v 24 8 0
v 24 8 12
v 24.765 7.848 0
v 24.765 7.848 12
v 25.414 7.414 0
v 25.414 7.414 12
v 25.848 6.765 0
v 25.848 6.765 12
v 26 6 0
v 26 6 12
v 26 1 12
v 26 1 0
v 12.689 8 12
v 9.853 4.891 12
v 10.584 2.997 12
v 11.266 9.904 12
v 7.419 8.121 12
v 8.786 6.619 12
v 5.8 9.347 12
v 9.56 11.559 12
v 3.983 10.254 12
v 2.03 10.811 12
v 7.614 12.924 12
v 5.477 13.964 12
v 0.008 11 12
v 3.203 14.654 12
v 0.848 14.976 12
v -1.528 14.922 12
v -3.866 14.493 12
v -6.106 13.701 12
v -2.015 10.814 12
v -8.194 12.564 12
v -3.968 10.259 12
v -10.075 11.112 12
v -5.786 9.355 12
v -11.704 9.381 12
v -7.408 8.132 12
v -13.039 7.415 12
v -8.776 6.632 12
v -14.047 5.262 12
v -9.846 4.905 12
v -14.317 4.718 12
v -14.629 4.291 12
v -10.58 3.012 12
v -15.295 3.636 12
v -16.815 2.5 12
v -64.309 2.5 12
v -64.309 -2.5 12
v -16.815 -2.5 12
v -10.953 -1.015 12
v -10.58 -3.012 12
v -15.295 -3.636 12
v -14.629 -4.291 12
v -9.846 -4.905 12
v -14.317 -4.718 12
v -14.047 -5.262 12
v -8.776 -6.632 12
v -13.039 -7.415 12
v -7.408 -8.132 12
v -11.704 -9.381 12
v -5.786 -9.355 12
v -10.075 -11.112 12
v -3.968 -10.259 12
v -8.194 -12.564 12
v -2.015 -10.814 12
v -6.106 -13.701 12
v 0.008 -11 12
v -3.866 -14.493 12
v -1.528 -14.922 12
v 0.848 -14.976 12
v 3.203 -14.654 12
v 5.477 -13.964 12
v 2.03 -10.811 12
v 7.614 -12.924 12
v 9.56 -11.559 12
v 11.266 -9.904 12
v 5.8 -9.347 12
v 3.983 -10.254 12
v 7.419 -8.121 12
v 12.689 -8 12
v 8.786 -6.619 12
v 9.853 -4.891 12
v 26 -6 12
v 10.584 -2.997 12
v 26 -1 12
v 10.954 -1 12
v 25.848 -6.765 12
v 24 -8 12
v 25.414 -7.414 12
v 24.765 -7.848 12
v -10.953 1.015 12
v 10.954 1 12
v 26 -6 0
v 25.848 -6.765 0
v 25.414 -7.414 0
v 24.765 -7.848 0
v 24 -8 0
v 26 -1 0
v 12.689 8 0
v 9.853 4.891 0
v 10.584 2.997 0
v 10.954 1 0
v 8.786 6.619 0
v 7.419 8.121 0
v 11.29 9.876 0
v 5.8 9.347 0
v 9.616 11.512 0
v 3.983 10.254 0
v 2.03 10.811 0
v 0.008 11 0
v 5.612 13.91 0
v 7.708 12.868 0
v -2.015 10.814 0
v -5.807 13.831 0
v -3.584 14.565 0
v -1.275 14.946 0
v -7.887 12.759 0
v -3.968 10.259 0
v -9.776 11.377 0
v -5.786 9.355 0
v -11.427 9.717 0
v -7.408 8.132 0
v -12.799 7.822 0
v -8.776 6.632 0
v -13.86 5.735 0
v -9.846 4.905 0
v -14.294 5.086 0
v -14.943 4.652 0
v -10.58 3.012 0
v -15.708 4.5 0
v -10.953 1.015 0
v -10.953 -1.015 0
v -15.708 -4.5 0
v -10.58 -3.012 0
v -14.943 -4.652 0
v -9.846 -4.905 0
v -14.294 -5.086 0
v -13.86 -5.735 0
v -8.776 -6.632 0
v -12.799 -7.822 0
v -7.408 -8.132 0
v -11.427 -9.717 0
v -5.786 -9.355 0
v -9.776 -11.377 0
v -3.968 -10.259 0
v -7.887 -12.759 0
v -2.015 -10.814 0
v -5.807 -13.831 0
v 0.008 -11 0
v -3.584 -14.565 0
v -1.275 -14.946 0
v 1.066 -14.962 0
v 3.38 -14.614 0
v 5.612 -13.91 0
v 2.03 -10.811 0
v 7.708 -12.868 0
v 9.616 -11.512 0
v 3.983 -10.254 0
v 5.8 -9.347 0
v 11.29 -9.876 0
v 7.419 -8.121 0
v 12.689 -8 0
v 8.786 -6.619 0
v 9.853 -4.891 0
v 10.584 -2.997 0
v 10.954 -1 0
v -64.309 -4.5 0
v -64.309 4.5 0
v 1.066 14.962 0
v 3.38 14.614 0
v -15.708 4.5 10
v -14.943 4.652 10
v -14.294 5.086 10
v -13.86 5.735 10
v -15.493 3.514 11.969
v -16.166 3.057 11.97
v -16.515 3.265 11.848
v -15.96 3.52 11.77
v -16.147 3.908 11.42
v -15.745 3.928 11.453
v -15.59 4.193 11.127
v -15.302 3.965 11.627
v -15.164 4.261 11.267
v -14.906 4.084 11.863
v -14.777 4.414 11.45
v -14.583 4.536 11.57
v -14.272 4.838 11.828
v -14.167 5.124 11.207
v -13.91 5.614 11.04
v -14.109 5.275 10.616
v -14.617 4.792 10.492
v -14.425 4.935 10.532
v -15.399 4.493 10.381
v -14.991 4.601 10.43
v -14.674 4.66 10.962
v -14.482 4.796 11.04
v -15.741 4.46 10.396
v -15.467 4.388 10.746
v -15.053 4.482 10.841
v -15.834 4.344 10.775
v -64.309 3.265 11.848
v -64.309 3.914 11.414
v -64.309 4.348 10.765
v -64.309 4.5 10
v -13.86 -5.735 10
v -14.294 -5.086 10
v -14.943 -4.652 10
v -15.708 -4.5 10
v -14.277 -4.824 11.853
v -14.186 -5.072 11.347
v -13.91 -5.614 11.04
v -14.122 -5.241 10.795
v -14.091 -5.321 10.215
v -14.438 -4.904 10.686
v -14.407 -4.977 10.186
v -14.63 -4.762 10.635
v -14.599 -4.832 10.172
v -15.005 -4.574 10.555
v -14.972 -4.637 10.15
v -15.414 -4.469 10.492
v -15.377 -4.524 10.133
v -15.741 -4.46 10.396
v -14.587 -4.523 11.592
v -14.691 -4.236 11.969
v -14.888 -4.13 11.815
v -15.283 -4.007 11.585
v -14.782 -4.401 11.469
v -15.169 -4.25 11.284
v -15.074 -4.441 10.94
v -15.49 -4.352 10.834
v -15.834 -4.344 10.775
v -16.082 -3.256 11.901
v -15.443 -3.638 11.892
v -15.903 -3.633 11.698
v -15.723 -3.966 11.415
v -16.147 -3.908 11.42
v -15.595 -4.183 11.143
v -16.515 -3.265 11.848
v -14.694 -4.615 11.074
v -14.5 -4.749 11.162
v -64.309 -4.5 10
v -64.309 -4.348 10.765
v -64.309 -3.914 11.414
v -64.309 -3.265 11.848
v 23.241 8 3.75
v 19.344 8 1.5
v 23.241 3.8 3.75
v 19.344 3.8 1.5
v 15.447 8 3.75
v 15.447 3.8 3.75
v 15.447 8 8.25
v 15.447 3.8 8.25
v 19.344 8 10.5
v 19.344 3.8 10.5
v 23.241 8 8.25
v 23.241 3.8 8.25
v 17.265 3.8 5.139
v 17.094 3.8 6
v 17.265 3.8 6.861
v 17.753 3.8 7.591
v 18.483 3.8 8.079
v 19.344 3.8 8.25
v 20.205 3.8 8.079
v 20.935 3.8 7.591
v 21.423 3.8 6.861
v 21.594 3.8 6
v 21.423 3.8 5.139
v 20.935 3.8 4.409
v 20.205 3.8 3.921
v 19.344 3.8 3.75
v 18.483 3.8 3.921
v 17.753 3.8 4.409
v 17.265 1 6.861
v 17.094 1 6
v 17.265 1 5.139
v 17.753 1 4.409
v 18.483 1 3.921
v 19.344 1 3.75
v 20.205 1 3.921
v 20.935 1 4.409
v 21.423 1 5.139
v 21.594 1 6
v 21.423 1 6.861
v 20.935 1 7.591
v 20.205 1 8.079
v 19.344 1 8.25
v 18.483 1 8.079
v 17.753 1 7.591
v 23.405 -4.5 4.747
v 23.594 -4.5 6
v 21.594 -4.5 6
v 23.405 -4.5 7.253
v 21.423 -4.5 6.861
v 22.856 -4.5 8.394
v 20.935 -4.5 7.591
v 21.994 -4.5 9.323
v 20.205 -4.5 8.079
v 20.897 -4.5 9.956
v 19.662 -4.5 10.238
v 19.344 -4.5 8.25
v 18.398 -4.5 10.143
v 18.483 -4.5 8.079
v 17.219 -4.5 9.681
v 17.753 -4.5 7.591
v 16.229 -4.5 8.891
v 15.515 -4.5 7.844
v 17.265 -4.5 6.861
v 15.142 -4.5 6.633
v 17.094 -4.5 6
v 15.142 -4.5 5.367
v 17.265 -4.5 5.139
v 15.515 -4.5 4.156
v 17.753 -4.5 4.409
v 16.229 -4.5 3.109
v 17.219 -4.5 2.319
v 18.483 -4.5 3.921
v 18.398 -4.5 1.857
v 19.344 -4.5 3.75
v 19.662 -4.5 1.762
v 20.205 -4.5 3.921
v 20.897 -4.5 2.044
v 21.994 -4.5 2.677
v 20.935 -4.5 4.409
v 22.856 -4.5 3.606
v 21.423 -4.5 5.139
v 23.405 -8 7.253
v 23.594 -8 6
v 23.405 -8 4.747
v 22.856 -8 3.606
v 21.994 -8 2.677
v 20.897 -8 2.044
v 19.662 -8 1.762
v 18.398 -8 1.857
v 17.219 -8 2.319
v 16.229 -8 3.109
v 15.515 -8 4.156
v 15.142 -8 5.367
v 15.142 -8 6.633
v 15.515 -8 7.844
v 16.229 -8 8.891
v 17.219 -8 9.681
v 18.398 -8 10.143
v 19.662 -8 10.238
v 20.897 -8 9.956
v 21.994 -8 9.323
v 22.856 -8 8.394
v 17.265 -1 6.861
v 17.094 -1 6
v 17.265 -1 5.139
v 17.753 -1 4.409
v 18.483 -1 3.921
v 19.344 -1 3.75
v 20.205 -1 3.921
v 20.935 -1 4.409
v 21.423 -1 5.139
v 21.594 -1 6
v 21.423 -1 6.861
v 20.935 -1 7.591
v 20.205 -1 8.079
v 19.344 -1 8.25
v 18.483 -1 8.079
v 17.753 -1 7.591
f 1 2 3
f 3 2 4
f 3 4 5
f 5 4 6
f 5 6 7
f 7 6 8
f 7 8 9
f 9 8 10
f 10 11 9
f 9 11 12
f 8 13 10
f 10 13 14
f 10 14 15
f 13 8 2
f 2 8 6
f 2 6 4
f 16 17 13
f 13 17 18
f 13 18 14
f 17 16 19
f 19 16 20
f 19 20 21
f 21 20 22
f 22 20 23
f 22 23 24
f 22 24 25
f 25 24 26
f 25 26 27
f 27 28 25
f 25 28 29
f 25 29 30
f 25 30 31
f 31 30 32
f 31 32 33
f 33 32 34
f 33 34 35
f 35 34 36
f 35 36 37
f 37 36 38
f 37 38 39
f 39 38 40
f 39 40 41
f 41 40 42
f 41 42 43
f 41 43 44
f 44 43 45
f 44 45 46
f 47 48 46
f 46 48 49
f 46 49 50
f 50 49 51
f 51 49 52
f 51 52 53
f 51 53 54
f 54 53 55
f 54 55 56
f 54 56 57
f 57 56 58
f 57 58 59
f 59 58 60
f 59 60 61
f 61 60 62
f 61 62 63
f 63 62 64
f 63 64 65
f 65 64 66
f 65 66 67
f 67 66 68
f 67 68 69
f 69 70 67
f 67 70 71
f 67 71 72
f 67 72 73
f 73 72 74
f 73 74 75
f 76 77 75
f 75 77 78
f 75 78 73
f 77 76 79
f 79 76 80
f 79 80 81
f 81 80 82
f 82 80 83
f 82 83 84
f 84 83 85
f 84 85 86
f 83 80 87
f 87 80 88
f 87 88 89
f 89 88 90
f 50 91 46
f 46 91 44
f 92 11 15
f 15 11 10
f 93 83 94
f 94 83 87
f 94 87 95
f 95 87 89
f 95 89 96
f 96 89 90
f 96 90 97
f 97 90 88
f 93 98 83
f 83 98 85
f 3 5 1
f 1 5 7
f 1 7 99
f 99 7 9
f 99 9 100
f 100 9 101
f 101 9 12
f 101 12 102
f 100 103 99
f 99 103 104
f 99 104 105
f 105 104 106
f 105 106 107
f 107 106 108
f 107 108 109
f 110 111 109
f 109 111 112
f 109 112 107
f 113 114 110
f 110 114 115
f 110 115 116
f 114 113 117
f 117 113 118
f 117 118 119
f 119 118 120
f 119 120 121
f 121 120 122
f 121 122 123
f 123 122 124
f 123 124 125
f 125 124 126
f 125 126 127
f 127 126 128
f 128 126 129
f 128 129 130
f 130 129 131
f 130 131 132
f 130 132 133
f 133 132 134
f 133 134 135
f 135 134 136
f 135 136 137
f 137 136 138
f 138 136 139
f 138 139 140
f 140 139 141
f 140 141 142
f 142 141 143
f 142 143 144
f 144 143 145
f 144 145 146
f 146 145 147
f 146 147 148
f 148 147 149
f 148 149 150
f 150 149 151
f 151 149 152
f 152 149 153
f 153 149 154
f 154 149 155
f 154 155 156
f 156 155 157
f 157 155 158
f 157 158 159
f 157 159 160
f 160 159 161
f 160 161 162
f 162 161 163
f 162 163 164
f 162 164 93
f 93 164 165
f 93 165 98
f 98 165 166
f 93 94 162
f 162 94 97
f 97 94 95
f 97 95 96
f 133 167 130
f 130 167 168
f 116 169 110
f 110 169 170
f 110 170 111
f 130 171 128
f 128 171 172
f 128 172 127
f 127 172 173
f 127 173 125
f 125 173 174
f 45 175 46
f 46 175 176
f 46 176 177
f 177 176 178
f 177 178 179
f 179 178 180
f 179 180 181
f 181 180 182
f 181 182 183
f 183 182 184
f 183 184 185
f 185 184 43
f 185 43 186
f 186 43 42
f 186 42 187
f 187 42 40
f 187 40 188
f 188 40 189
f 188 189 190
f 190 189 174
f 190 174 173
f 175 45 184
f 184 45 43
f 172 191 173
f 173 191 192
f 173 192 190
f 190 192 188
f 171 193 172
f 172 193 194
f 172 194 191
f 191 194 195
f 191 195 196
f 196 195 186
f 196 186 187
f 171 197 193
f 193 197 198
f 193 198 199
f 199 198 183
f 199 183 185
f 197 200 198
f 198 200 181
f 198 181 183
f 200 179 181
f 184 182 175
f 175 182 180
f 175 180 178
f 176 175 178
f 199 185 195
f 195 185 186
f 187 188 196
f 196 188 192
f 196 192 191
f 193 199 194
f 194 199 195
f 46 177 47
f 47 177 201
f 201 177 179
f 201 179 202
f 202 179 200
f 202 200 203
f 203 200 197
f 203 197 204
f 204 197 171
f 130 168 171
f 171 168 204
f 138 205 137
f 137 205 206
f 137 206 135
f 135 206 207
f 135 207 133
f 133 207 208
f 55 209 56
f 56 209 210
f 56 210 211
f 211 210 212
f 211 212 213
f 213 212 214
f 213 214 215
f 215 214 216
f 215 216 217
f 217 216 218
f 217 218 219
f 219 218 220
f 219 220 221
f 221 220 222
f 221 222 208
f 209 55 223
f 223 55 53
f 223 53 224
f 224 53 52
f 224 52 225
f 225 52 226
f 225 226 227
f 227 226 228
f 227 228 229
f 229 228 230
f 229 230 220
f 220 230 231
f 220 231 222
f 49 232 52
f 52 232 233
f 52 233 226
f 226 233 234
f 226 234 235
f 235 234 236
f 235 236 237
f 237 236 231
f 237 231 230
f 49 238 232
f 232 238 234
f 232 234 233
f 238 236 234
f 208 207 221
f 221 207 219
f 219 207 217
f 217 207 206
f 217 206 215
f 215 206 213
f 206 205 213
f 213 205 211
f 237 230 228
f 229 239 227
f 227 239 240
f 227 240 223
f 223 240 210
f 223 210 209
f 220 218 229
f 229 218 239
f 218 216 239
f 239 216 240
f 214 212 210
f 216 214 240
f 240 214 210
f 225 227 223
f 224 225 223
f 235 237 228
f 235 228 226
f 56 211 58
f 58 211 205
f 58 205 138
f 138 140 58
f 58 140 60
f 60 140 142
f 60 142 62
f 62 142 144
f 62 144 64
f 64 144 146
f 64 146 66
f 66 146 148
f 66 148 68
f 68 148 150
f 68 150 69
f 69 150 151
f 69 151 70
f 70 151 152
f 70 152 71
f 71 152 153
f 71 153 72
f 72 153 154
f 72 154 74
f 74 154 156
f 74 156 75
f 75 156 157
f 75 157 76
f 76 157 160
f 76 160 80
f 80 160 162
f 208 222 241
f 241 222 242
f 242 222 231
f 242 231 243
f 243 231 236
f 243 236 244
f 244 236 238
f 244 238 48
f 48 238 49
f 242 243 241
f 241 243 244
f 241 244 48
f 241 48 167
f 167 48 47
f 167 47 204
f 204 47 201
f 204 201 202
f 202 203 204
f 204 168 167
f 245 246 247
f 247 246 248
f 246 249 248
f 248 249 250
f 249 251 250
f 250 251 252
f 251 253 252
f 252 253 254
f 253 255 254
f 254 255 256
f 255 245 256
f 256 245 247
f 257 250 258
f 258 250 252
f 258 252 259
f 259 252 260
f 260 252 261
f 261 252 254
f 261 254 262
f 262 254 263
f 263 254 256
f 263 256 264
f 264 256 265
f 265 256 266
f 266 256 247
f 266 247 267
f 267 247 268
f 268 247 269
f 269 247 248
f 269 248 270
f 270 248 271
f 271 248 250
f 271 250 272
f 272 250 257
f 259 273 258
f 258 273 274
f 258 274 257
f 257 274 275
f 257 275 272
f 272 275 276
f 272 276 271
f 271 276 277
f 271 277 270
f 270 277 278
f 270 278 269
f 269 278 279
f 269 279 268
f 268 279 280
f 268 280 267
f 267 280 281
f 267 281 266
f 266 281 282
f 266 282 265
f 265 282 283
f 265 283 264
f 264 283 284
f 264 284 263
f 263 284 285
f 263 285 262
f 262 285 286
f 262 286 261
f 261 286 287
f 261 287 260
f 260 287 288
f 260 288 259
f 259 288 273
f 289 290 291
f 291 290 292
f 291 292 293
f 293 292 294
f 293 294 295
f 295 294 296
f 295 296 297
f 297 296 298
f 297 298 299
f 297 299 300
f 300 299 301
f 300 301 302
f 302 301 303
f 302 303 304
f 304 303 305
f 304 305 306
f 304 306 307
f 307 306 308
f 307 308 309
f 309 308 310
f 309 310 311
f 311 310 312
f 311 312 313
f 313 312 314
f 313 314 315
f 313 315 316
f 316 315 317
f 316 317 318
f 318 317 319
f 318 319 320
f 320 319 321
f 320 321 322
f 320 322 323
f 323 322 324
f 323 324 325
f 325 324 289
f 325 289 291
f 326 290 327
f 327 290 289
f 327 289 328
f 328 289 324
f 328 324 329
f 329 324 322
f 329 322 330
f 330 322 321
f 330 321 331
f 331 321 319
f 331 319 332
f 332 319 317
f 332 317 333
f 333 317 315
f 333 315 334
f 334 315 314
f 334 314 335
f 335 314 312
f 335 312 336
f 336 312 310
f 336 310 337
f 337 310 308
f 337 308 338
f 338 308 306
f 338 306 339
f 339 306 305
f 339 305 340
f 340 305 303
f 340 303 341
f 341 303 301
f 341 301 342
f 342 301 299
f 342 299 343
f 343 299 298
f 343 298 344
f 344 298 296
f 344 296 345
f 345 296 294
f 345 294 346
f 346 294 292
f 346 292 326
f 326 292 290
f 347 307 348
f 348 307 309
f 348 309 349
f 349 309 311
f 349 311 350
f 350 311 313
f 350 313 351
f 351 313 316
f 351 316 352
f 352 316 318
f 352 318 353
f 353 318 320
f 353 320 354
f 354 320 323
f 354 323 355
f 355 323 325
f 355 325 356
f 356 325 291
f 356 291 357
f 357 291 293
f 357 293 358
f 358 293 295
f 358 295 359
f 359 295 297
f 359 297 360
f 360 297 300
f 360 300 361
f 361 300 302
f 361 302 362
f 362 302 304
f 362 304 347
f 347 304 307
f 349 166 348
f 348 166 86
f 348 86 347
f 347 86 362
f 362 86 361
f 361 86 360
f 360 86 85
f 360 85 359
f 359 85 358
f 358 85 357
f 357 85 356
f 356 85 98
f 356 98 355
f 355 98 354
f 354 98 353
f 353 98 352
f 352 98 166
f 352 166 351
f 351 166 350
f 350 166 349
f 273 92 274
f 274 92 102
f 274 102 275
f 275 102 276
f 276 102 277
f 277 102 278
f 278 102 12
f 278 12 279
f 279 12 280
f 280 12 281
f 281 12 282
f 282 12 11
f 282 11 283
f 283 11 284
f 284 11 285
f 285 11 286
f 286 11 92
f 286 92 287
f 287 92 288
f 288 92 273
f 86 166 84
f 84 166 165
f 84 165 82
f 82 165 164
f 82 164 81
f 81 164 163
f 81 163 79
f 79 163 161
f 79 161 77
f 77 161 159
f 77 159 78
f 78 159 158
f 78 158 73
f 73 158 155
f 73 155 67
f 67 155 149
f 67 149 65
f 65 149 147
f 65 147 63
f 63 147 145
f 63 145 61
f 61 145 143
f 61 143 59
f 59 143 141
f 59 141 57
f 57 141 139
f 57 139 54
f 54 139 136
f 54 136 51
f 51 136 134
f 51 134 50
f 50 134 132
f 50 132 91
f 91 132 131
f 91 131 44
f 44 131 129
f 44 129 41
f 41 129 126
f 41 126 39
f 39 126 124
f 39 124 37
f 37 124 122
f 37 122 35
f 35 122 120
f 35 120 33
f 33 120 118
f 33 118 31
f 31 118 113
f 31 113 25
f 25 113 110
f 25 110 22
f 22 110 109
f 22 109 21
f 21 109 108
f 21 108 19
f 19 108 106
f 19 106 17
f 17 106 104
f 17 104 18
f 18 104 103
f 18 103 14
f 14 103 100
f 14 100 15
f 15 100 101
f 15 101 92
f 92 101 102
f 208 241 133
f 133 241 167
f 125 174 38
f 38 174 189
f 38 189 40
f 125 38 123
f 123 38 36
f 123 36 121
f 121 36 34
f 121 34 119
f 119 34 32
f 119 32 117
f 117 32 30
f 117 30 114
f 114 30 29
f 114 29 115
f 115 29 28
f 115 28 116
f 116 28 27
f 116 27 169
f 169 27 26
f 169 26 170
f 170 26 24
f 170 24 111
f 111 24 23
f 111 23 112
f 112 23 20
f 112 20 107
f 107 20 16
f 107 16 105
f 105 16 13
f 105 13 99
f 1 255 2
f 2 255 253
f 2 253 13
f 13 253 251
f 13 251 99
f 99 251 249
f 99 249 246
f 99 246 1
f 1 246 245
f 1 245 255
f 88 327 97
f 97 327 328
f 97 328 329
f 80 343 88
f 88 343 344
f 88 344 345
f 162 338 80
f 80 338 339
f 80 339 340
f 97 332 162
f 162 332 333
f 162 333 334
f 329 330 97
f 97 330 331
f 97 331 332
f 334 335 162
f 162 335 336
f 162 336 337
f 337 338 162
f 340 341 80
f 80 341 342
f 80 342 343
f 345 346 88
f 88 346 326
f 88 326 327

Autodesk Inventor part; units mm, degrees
ref_plane "YZ Plane" through (0, 0, 0) normal (1, 0, 0) x (0, 1, 0)
ref_plane "XZ Plane" through (0, 0, 0) normal (0, 1, 0) x (-1, 0, 0)
ref_plane "XY Plane" through (0, 0, 0) normal (0, 0, 1) x (1, 0, 0)
sketch "Sketch1" plane through (0, 0, 0) normal (0, 0, 1) x (1, 0, 0)
  circle A0 centre (0, 0) radius 11
  circle A1 centre (0, 0) radius 15
  line L0 (26, 8) -> (11, 8)
  line L1 (11, 8) -> (11, -8)
  line L2 (11, -8) -> (26, -8)
  line L3 (26, -8) -> (26, 8)
  line L4 (-64.309, 4.5) -> (-12, 4.5)
  line L5 (-12, 4.5) -> (-12, -4.5)
  line L6 (-12, -4.5) -> (-64.309, -4.5)
  line L7 (-64.309, -4.5) -> (-64.309, 4.5)
  point P0 (12.6886, 8)
  point P1 (12.6886, -8)
  point P2 (-14.3091, -4.5)
  point P3 (-14.3091, 4.5)
  dimension "d0" = 22
  dimension "d1" = 30
  dimension "d10" = 15
  dimension "d11" = 16
  dimension "d45" = 52.309
  dimension "d46" = 9
extrude "Extrusion1" add sketch "Sketch1" along normal blind 12
sketch "Sketch2" plane through (0, 0, 12) normal (0, 0, 1) x (1, 0, 0)
  circle A0 centre (0, 0) radius 11 projected
  line L0 (26, -8) -> (26, 8) projected
  line L1 (26, 0) -> (10.8, 0)
  line L2 (10.8, 0) -> (10.8, 1)
  line L3 (10.8, 1) -> (26, 1)
  line L4 (26, 1) -> (26, 0)
  line L5 (26, 0) -> (10.8, 0)
  line L6 (10.8, 0) -> (10.8, -1)
  line L7 (10.8, -1) -> (26, -1)
  line L8 (26, -1) -> (26, 0)
  point P0 (10.9545, 1)
  point P1 (10.9545, -1)
  dimension "d20" = 15.2
  dimension "d21" = 1
  dimension "d22" = 1
extrude "Extrusion2" cut sketch "Sketch2" against normal blind 12 contours L1 L2 L3 A0 | L1 L0 L7 A0 | A0 L3 L0 L1 | A0 L7 L6 L1
sketch "Sketch3" plane through (12.6886, -8, 0) normal (0, -1, 0) x (1, 0, 0)
  line L0 (0, 0) -> (0, 12) projected
  line L1 (0, 0) -> (6.6555, 0)
  line L2 (6.6555, 0) -> (6.6555, 6)
  line L3 (6.6555, 6) -> (0, 6)
  line L4 (0, 6) -> (0, 0)
  point P0 (-12.6886, 0)
  dimension "d25" = 6.6555
  dimension "d26" = 6
hole "Hole1" at (19.3441, -8, 6) direction (0, 1, 0) diameter 4.5 depth 12.5 counterbore diameter 8.5 counterbore depth 3.5
sketch "Sketch4" plane through (12.6886, 8, 0) normal (0, 1, 0) x (1, 0, 0)
  line L0 (13.3114, 0) -> (0, 0) projected
  line L1 (0, 0) -> (6.6555, 0)
  line L2 (6.6555, 0) -> (6.6555, -6)
  line L3 (6.6555, -6) -> (0, -6)
  line L4 (0, -6) -> (0, 0)
  line L5 (6.6555, -6) -> (6.6555, -10.5)
  line L6 (6.6555, -6) -> (11.1555, -6) construction
  line L7 (6.6555, -10.5) -> (2.7584, -8.25)
  line L8 (2.7584, -8.25) -> (2.7584, -3.75)
  line L9 (2.7584, -3.75) -> (6.6555, -1.5)
  line L10 (6.6555, -1.5) -> (10.5526, -3.75)
  line L11 (10.5526, -3.75) -> (10.5526, -8.25)
  line L12 (10.5526, -8.25) -> (6.6555, -10.5)
  point P0 (-12.6886, 0)
  dimension "d51" = 6.6555
  dimension "d52" = 6
  dimension "d53" = 4.5
  dimension "d54" = 90
extrude "Extrusion3" cut sketch "Sketch4" against normal blind 4.2 contours L10 L11 L12 L5 L2 | L2 L3 L8 L9 | L5 L7 L8 L3
fillet "Fillet1" radius 2 2 edges at (-39.309, 4.5, 12) (-39.309, -4.5, 12)
fillet "Fillet2" radius 2 4 edges at (-14.3091, -4.5, 5) (-14.4562, -4.0024, 11.3202) (-14.3091, 4.5, 5) (-14.4562, 4.0024, 11.3201)
fillet "Fillet3" radius 2 2 edges at (26, -8, 6) (26, 8, 6)
properties part number "Clasp"
